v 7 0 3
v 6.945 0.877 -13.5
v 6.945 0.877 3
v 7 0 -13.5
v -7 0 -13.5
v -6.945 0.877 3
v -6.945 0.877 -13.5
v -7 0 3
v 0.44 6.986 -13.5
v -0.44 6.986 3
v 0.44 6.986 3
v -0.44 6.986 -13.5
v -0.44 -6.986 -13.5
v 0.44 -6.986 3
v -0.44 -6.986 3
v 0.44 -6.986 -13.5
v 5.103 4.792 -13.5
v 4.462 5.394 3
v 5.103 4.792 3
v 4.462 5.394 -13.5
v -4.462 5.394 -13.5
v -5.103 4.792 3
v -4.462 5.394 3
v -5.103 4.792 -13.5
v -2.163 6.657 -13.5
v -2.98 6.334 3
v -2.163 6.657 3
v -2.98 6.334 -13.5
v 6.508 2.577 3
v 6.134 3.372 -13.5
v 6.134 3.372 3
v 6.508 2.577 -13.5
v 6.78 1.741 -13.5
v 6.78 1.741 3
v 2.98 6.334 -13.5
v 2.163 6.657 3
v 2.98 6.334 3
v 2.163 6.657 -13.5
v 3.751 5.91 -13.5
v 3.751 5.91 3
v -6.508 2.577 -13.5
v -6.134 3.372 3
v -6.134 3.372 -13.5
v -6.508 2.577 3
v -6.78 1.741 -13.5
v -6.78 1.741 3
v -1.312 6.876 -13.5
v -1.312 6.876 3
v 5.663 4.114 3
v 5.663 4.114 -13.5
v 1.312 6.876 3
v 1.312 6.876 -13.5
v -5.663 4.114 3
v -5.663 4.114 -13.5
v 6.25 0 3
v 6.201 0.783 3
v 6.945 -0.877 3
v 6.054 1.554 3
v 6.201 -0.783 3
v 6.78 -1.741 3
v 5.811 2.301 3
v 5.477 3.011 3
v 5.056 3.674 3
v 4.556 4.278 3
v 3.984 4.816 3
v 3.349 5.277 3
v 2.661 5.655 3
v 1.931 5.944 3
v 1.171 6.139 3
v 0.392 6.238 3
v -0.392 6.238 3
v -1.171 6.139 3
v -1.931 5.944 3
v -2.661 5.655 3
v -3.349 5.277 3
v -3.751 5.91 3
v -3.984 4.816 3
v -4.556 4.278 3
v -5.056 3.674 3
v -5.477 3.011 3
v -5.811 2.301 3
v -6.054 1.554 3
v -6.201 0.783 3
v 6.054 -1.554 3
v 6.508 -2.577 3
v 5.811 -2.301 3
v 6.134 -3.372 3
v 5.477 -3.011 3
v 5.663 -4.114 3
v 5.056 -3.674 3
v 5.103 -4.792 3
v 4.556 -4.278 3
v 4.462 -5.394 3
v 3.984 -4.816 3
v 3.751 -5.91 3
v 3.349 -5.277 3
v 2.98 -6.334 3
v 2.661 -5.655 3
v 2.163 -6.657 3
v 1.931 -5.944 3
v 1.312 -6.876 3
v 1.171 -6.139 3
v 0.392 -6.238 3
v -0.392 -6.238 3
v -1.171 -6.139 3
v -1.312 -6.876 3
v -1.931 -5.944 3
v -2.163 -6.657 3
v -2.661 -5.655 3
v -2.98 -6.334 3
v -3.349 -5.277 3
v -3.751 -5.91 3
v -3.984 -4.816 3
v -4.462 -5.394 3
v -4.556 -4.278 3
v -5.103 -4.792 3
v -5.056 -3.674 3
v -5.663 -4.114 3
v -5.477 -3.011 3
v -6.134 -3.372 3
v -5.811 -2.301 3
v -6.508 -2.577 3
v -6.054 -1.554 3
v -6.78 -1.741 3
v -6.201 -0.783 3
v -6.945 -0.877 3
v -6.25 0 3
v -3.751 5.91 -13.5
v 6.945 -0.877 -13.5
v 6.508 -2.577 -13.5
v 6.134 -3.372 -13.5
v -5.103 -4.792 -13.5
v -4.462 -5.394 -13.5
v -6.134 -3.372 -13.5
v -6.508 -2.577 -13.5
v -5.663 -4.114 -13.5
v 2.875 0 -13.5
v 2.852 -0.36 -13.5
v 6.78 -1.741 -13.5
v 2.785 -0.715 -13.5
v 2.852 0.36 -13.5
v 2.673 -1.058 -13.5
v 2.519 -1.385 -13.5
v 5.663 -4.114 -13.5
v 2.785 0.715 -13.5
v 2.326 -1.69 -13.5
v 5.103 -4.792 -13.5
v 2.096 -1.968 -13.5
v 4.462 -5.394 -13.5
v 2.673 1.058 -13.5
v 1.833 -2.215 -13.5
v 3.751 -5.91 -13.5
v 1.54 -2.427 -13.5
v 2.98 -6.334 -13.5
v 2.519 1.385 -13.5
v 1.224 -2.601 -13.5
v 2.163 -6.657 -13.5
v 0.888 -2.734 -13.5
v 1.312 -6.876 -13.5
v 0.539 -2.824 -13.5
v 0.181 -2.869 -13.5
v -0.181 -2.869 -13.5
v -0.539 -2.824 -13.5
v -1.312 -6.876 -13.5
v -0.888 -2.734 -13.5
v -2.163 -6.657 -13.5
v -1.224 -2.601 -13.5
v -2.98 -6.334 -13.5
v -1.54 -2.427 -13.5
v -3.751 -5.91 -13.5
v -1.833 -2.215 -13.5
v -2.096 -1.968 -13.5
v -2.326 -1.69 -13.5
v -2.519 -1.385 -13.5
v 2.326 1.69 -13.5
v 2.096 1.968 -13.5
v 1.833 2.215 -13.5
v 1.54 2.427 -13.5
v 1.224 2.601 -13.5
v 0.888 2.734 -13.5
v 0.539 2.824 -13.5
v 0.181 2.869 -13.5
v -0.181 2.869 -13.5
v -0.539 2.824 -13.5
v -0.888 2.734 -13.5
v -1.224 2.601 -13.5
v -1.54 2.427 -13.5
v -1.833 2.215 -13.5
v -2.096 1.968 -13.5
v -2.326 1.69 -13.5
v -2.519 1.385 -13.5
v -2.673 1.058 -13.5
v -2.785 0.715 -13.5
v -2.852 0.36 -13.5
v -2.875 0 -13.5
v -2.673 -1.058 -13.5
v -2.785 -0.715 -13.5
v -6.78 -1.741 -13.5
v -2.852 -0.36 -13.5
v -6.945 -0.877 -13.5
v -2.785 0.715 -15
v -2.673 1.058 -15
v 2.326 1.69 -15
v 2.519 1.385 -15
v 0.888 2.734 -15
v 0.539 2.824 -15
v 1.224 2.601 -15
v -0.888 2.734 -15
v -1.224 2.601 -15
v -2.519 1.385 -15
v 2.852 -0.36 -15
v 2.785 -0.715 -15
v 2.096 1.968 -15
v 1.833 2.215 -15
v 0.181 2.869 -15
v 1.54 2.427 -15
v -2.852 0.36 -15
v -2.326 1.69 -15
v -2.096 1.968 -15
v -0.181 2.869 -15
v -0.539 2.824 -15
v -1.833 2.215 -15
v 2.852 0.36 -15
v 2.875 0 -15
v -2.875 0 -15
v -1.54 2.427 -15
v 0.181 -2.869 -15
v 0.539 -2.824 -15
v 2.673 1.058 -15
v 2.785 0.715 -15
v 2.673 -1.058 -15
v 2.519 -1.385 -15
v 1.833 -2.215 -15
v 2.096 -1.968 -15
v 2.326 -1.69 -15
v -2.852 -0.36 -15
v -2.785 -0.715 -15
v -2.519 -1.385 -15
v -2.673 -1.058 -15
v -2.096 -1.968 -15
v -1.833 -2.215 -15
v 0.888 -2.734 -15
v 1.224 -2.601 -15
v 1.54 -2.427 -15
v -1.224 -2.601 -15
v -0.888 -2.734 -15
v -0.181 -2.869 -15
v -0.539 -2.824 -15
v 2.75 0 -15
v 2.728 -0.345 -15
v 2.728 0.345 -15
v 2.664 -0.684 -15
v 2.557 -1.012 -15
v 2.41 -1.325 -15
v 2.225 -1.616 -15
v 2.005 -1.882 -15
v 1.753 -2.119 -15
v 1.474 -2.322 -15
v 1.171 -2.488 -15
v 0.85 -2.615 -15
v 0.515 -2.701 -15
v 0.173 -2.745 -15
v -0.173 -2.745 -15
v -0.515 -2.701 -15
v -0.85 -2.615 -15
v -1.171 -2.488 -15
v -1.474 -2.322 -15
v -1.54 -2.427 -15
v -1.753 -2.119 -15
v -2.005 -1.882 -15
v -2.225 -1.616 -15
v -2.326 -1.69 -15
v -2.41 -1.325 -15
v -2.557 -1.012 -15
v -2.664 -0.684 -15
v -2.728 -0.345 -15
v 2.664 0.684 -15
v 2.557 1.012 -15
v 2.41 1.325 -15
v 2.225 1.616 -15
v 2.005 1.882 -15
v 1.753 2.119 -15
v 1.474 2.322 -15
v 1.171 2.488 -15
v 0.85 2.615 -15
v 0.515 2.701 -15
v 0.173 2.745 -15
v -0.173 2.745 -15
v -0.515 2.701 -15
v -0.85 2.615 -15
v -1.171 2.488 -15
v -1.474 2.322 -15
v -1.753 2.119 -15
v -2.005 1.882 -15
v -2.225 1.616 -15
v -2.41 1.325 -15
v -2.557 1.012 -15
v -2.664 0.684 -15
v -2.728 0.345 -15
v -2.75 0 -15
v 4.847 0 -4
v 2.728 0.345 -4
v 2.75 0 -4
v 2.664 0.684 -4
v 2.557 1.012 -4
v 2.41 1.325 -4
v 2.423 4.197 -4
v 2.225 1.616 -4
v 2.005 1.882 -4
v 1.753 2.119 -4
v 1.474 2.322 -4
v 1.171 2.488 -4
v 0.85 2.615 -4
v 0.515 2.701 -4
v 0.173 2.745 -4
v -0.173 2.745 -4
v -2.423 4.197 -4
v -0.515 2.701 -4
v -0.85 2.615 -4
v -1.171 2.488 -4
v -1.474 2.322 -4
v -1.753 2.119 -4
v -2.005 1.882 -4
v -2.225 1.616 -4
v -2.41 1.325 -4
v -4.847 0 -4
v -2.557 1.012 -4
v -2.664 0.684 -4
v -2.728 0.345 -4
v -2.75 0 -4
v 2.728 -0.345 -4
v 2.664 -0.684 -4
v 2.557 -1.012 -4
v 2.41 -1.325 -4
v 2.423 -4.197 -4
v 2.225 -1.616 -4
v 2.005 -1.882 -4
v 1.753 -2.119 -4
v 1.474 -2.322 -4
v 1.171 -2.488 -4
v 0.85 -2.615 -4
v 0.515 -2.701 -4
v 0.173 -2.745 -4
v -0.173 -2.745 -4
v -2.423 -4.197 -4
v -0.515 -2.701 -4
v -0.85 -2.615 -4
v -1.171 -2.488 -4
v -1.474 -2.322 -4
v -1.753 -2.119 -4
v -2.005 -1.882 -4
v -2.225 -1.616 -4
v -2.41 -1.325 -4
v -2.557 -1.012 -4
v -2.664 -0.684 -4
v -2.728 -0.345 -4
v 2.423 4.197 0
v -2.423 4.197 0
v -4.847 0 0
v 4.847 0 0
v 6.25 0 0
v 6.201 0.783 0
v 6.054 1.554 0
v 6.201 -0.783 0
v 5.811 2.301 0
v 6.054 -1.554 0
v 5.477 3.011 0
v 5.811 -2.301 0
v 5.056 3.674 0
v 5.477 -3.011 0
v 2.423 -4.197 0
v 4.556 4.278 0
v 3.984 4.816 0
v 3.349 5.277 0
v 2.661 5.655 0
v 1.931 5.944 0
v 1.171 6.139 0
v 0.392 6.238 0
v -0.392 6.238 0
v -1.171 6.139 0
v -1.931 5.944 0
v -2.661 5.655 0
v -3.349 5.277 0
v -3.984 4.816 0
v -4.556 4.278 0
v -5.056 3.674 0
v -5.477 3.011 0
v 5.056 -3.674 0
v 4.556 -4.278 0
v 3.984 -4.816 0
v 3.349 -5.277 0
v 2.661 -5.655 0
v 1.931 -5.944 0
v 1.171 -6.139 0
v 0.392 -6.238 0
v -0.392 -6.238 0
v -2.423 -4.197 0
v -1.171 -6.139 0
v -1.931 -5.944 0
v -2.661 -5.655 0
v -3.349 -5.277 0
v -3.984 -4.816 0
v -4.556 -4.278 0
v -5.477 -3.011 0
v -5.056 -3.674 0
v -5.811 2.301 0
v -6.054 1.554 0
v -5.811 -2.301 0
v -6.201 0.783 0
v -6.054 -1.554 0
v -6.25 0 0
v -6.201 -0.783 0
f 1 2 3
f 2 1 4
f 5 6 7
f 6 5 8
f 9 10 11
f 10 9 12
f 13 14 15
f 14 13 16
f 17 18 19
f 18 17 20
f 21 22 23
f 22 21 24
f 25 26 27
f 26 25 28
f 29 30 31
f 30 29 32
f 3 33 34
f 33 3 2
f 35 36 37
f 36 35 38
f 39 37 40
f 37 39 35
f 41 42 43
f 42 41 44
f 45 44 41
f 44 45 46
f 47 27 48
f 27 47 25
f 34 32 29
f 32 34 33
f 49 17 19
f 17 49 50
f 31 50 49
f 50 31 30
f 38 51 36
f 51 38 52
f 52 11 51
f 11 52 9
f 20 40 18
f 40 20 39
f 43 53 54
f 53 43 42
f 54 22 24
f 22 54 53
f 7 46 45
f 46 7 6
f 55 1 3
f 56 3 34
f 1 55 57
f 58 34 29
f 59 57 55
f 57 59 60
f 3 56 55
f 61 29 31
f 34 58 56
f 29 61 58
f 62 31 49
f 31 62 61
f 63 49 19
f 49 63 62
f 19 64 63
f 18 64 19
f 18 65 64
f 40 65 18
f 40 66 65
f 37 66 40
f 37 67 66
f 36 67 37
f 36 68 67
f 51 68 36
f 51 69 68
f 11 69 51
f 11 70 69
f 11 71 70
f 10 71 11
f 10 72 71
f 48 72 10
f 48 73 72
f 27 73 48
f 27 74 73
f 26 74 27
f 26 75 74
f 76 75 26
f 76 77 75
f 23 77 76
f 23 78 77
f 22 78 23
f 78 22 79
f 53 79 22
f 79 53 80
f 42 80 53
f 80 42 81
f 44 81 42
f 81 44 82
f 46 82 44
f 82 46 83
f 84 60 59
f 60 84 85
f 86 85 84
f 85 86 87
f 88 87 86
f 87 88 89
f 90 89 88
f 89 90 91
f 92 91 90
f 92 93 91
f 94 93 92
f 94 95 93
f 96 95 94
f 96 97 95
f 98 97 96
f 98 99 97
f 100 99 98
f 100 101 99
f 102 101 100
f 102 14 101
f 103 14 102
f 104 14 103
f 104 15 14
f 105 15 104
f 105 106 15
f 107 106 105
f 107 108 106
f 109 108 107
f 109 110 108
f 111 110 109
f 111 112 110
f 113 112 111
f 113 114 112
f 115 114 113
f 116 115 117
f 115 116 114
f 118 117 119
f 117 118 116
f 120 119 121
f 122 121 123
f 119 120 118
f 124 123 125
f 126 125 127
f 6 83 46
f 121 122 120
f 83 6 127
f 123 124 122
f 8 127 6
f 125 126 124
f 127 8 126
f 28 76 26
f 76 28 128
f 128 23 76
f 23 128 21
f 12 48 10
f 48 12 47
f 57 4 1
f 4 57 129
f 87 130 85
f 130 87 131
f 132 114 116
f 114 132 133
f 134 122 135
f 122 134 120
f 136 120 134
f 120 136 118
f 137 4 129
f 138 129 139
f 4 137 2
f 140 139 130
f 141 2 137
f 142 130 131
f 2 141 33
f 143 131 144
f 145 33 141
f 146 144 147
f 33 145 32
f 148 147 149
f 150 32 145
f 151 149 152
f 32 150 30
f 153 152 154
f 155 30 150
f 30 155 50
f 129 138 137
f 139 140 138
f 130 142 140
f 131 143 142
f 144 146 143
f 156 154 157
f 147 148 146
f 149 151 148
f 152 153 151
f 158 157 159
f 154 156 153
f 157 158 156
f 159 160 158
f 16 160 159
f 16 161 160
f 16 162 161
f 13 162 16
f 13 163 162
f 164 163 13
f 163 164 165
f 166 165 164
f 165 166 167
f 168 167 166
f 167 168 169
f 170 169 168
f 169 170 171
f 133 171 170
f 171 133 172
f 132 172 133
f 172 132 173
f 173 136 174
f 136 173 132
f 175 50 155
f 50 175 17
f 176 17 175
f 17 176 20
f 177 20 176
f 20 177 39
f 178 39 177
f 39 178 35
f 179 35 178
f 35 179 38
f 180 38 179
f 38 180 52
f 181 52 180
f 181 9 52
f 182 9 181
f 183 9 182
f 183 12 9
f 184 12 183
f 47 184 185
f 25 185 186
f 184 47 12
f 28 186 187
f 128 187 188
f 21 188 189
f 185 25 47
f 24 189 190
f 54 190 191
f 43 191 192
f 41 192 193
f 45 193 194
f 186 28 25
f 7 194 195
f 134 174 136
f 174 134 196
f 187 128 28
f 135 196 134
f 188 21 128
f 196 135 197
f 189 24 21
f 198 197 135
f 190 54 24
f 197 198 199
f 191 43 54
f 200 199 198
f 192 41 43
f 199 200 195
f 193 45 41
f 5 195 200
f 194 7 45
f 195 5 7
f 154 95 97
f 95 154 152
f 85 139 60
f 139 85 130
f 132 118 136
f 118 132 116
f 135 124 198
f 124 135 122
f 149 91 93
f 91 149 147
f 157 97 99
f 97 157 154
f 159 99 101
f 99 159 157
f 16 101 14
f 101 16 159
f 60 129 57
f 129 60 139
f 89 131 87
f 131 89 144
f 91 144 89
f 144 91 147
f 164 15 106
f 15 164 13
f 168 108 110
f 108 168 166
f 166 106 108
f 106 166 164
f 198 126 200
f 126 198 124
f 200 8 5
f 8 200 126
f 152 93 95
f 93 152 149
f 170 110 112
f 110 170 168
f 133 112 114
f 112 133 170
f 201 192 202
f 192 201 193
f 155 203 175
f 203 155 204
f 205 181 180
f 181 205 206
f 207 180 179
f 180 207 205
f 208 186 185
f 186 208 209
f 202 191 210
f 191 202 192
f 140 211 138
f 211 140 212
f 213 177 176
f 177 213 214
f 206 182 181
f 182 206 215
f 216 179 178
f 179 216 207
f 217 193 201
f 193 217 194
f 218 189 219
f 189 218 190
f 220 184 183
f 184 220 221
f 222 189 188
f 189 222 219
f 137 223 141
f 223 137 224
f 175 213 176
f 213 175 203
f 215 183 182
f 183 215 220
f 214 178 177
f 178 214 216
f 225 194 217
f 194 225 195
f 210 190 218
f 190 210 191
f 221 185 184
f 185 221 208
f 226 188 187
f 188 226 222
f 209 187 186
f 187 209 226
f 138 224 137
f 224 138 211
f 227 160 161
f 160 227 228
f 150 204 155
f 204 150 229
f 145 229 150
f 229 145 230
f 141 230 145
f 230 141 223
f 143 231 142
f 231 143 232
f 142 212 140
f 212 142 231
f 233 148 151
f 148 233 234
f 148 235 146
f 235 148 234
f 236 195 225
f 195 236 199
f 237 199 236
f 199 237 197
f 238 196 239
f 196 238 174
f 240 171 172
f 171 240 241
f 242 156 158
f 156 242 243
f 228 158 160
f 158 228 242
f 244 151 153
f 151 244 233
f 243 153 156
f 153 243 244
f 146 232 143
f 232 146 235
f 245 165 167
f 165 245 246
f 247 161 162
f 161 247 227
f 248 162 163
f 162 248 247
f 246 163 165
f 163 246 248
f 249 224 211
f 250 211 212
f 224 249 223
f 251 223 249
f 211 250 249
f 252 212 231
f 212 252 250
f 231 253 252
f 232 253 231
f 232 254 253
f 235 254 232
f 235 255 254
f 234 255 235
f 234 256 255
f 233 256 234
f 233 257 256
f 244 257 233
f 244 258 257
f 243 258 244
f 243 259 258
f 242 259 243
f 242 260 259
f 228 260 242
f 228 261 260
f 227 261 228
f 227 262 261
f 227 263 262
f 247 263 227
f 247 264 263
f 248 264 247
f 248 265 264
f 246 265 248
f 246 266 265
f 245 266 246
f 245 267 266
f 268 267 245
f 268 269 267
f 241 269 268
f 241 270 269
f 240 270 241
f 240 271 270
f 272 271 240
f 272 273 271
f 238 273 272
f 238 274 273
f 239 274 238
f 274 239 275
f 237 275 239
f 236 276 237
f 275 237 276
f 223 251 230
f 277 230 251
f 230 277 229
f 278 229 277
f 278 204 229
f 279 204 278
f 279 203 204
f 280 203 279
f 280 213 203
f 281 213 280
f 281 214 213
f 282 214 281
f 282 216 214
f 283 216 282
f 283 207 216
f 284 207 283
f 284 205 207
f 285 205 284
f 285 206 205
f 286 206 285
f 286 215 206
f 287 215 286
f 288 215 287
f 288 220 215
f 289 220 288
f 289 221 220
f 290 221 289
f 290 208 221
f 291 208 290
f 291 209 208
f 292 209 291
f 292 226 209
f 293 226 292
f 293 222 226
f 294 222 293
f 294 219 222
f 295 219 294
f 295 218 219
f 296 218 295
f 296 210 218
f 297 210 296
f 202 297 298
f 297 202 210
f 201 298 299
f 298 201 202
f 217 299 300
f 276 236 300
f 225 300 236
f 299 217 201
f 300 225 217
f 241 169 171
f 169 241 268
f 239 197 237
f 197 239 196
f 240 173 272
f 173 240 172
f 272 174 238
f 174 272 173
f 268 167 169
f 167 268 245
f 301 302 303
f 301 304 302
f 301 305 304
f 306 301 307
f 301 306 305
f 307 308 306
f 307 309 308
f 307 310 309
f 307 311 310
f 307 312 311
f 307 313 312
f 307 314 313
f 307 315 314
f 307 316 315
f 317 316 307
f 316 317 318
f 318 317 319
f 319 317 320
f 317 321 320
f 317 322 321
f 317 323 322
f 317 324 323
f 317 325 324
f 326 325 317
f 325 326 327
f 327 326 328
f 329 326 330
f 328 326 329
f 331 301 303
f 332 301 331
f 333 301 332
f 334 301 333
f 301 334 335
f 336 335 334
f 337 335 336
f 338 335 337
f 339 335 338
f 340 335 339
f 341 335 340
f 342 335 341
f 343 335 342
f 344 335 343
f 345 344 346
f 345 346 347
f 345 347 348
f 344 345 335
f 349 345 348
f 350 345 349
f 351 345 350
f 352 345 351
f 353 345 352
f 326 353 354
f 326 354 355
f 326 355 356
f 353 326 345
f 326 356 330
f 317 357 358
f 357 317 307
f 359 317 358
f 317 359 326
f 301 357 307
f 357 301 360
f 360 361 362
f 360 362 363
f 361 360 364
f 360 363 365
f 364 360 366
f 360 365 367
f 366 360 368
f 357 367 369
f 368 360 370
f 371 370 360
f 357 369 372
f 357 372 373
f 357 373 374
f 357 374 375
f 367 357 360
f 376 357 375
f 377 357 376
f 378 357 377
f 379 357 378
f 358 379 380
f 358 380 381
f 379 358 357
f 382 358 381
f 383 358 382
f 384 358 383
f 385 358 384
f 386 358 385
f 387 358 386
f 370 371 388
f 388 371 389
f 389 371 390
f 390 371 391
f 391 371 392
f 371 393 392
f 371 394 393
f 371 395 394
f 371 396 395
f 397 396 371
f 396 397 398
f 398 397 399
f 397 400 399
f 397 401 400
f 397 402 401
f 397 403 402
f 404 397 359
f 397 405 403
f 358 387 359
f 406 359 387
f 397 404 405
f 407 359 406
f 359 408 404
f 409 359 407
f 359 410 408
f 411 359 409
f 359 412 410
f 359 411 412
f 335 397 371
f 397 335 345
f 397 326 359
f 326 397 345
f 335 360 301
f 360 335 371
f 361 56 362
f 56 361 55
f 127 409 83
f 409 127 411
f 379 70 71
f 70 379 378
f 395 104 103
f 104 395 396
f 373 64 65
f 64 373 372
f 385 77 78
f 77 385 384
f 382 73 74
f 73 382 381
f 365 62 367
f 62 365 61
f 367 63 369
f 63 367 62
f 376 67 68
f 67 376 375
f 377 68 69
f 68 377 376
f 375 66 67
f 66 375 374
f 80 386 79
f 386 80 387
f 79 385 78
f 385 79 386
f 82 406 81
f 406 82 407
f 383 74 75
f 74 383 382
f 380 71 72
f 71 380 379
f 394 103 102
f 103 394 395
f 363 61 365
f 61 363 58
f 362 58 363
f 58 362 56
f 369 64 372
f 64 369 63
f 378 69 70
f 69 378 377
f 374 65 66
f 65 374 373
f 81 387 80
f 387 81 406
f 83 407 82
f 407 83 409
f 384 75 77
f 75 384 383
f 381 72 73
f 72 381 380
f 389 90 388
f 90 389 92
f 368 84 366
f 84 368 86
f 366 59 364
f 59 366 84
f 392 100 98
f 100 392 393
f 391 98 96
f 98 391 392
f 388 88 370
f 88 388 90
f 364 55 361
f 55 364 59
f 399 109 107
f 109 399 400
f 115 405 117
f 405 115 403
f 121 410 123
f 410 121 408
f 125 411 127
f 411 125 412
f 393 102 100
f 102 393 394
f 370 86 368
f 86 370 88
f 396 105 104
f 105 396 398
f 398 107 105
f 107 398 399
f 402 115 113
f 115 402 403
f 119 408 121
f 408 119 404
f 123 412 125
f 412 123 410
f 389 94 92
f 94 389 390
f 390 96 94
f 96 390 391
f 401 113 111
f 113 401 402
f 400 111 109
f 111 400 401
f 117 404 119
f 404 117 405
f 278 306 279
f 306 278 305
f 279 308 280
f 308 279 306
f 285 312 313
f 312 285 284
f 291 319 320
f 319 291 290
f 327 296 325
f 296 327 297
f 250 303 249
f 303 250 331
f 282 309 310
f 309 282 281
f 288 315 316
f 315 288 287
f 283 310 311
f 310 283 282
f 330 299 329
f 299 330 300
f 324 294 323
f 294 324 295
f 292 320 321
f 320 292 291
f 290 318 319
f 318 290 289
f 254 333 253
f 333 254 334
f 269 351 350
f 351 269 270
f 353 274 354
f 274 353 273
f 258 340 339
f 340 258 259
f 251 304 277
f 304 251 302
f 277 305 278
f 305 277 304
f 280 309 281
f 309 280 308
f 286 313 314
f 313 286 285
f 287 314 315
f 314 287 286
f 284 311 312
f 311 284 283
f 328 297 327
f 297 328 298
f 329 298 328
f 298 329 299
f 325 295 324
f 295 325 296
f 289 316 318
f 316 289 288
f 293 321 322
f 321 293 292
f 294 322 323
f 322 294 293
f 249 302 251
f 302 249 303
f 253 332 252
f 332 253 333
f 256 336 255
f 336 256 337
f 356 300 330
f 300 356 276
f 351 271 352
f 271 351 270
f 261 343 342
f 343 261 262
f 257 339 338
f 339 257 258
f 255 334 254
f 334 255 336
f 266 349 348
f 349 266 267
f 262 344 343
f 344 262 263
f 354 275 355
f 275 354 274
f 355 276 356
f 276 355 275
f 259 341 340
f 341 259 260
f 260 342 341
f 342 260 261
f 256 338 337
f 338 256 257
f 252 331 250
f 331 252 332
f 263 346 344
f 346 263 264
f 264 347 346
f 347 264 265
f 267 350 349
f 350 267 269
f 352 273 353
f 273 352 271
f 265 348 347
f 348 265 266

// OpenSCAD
$fn = 50;

difference() {
	union() {
		translate(v = [0, 0, -13.5]) {
			cylinder(h = 16.5, r = 7.0);
		}
		#translate(v = [0, 0, -15.0]) {
			cylinder(h = 15, r = 2.875);
		}
	}
	union() {
		translate(v = [0, 0, 0]) {
			rotate(a = [0, 0, 0]) {
				difference() {
					union() {
						translate(v = [0, 0, -4]) {
							linear_extrude(height = 4) {
								polygon(points = [[4.8468, 0.0], [2.4234000000000004, 4.197451927062417], [-2.423399999999999, 4.197451927062417], [-4.8468, 5.935618106107392e-16], [-2.423400000000002, -4.197451927062416], [2.423399999999997, -4.197451927062419]]);
							}
						}
					}
					union();
				}
			}
		}
		#cylinder(h = 3, r = 6.25);
		#translate(v = [0, 0, -100.0]) {
			cylinder(h = 200, r = 2.75);
		}
	}
}
